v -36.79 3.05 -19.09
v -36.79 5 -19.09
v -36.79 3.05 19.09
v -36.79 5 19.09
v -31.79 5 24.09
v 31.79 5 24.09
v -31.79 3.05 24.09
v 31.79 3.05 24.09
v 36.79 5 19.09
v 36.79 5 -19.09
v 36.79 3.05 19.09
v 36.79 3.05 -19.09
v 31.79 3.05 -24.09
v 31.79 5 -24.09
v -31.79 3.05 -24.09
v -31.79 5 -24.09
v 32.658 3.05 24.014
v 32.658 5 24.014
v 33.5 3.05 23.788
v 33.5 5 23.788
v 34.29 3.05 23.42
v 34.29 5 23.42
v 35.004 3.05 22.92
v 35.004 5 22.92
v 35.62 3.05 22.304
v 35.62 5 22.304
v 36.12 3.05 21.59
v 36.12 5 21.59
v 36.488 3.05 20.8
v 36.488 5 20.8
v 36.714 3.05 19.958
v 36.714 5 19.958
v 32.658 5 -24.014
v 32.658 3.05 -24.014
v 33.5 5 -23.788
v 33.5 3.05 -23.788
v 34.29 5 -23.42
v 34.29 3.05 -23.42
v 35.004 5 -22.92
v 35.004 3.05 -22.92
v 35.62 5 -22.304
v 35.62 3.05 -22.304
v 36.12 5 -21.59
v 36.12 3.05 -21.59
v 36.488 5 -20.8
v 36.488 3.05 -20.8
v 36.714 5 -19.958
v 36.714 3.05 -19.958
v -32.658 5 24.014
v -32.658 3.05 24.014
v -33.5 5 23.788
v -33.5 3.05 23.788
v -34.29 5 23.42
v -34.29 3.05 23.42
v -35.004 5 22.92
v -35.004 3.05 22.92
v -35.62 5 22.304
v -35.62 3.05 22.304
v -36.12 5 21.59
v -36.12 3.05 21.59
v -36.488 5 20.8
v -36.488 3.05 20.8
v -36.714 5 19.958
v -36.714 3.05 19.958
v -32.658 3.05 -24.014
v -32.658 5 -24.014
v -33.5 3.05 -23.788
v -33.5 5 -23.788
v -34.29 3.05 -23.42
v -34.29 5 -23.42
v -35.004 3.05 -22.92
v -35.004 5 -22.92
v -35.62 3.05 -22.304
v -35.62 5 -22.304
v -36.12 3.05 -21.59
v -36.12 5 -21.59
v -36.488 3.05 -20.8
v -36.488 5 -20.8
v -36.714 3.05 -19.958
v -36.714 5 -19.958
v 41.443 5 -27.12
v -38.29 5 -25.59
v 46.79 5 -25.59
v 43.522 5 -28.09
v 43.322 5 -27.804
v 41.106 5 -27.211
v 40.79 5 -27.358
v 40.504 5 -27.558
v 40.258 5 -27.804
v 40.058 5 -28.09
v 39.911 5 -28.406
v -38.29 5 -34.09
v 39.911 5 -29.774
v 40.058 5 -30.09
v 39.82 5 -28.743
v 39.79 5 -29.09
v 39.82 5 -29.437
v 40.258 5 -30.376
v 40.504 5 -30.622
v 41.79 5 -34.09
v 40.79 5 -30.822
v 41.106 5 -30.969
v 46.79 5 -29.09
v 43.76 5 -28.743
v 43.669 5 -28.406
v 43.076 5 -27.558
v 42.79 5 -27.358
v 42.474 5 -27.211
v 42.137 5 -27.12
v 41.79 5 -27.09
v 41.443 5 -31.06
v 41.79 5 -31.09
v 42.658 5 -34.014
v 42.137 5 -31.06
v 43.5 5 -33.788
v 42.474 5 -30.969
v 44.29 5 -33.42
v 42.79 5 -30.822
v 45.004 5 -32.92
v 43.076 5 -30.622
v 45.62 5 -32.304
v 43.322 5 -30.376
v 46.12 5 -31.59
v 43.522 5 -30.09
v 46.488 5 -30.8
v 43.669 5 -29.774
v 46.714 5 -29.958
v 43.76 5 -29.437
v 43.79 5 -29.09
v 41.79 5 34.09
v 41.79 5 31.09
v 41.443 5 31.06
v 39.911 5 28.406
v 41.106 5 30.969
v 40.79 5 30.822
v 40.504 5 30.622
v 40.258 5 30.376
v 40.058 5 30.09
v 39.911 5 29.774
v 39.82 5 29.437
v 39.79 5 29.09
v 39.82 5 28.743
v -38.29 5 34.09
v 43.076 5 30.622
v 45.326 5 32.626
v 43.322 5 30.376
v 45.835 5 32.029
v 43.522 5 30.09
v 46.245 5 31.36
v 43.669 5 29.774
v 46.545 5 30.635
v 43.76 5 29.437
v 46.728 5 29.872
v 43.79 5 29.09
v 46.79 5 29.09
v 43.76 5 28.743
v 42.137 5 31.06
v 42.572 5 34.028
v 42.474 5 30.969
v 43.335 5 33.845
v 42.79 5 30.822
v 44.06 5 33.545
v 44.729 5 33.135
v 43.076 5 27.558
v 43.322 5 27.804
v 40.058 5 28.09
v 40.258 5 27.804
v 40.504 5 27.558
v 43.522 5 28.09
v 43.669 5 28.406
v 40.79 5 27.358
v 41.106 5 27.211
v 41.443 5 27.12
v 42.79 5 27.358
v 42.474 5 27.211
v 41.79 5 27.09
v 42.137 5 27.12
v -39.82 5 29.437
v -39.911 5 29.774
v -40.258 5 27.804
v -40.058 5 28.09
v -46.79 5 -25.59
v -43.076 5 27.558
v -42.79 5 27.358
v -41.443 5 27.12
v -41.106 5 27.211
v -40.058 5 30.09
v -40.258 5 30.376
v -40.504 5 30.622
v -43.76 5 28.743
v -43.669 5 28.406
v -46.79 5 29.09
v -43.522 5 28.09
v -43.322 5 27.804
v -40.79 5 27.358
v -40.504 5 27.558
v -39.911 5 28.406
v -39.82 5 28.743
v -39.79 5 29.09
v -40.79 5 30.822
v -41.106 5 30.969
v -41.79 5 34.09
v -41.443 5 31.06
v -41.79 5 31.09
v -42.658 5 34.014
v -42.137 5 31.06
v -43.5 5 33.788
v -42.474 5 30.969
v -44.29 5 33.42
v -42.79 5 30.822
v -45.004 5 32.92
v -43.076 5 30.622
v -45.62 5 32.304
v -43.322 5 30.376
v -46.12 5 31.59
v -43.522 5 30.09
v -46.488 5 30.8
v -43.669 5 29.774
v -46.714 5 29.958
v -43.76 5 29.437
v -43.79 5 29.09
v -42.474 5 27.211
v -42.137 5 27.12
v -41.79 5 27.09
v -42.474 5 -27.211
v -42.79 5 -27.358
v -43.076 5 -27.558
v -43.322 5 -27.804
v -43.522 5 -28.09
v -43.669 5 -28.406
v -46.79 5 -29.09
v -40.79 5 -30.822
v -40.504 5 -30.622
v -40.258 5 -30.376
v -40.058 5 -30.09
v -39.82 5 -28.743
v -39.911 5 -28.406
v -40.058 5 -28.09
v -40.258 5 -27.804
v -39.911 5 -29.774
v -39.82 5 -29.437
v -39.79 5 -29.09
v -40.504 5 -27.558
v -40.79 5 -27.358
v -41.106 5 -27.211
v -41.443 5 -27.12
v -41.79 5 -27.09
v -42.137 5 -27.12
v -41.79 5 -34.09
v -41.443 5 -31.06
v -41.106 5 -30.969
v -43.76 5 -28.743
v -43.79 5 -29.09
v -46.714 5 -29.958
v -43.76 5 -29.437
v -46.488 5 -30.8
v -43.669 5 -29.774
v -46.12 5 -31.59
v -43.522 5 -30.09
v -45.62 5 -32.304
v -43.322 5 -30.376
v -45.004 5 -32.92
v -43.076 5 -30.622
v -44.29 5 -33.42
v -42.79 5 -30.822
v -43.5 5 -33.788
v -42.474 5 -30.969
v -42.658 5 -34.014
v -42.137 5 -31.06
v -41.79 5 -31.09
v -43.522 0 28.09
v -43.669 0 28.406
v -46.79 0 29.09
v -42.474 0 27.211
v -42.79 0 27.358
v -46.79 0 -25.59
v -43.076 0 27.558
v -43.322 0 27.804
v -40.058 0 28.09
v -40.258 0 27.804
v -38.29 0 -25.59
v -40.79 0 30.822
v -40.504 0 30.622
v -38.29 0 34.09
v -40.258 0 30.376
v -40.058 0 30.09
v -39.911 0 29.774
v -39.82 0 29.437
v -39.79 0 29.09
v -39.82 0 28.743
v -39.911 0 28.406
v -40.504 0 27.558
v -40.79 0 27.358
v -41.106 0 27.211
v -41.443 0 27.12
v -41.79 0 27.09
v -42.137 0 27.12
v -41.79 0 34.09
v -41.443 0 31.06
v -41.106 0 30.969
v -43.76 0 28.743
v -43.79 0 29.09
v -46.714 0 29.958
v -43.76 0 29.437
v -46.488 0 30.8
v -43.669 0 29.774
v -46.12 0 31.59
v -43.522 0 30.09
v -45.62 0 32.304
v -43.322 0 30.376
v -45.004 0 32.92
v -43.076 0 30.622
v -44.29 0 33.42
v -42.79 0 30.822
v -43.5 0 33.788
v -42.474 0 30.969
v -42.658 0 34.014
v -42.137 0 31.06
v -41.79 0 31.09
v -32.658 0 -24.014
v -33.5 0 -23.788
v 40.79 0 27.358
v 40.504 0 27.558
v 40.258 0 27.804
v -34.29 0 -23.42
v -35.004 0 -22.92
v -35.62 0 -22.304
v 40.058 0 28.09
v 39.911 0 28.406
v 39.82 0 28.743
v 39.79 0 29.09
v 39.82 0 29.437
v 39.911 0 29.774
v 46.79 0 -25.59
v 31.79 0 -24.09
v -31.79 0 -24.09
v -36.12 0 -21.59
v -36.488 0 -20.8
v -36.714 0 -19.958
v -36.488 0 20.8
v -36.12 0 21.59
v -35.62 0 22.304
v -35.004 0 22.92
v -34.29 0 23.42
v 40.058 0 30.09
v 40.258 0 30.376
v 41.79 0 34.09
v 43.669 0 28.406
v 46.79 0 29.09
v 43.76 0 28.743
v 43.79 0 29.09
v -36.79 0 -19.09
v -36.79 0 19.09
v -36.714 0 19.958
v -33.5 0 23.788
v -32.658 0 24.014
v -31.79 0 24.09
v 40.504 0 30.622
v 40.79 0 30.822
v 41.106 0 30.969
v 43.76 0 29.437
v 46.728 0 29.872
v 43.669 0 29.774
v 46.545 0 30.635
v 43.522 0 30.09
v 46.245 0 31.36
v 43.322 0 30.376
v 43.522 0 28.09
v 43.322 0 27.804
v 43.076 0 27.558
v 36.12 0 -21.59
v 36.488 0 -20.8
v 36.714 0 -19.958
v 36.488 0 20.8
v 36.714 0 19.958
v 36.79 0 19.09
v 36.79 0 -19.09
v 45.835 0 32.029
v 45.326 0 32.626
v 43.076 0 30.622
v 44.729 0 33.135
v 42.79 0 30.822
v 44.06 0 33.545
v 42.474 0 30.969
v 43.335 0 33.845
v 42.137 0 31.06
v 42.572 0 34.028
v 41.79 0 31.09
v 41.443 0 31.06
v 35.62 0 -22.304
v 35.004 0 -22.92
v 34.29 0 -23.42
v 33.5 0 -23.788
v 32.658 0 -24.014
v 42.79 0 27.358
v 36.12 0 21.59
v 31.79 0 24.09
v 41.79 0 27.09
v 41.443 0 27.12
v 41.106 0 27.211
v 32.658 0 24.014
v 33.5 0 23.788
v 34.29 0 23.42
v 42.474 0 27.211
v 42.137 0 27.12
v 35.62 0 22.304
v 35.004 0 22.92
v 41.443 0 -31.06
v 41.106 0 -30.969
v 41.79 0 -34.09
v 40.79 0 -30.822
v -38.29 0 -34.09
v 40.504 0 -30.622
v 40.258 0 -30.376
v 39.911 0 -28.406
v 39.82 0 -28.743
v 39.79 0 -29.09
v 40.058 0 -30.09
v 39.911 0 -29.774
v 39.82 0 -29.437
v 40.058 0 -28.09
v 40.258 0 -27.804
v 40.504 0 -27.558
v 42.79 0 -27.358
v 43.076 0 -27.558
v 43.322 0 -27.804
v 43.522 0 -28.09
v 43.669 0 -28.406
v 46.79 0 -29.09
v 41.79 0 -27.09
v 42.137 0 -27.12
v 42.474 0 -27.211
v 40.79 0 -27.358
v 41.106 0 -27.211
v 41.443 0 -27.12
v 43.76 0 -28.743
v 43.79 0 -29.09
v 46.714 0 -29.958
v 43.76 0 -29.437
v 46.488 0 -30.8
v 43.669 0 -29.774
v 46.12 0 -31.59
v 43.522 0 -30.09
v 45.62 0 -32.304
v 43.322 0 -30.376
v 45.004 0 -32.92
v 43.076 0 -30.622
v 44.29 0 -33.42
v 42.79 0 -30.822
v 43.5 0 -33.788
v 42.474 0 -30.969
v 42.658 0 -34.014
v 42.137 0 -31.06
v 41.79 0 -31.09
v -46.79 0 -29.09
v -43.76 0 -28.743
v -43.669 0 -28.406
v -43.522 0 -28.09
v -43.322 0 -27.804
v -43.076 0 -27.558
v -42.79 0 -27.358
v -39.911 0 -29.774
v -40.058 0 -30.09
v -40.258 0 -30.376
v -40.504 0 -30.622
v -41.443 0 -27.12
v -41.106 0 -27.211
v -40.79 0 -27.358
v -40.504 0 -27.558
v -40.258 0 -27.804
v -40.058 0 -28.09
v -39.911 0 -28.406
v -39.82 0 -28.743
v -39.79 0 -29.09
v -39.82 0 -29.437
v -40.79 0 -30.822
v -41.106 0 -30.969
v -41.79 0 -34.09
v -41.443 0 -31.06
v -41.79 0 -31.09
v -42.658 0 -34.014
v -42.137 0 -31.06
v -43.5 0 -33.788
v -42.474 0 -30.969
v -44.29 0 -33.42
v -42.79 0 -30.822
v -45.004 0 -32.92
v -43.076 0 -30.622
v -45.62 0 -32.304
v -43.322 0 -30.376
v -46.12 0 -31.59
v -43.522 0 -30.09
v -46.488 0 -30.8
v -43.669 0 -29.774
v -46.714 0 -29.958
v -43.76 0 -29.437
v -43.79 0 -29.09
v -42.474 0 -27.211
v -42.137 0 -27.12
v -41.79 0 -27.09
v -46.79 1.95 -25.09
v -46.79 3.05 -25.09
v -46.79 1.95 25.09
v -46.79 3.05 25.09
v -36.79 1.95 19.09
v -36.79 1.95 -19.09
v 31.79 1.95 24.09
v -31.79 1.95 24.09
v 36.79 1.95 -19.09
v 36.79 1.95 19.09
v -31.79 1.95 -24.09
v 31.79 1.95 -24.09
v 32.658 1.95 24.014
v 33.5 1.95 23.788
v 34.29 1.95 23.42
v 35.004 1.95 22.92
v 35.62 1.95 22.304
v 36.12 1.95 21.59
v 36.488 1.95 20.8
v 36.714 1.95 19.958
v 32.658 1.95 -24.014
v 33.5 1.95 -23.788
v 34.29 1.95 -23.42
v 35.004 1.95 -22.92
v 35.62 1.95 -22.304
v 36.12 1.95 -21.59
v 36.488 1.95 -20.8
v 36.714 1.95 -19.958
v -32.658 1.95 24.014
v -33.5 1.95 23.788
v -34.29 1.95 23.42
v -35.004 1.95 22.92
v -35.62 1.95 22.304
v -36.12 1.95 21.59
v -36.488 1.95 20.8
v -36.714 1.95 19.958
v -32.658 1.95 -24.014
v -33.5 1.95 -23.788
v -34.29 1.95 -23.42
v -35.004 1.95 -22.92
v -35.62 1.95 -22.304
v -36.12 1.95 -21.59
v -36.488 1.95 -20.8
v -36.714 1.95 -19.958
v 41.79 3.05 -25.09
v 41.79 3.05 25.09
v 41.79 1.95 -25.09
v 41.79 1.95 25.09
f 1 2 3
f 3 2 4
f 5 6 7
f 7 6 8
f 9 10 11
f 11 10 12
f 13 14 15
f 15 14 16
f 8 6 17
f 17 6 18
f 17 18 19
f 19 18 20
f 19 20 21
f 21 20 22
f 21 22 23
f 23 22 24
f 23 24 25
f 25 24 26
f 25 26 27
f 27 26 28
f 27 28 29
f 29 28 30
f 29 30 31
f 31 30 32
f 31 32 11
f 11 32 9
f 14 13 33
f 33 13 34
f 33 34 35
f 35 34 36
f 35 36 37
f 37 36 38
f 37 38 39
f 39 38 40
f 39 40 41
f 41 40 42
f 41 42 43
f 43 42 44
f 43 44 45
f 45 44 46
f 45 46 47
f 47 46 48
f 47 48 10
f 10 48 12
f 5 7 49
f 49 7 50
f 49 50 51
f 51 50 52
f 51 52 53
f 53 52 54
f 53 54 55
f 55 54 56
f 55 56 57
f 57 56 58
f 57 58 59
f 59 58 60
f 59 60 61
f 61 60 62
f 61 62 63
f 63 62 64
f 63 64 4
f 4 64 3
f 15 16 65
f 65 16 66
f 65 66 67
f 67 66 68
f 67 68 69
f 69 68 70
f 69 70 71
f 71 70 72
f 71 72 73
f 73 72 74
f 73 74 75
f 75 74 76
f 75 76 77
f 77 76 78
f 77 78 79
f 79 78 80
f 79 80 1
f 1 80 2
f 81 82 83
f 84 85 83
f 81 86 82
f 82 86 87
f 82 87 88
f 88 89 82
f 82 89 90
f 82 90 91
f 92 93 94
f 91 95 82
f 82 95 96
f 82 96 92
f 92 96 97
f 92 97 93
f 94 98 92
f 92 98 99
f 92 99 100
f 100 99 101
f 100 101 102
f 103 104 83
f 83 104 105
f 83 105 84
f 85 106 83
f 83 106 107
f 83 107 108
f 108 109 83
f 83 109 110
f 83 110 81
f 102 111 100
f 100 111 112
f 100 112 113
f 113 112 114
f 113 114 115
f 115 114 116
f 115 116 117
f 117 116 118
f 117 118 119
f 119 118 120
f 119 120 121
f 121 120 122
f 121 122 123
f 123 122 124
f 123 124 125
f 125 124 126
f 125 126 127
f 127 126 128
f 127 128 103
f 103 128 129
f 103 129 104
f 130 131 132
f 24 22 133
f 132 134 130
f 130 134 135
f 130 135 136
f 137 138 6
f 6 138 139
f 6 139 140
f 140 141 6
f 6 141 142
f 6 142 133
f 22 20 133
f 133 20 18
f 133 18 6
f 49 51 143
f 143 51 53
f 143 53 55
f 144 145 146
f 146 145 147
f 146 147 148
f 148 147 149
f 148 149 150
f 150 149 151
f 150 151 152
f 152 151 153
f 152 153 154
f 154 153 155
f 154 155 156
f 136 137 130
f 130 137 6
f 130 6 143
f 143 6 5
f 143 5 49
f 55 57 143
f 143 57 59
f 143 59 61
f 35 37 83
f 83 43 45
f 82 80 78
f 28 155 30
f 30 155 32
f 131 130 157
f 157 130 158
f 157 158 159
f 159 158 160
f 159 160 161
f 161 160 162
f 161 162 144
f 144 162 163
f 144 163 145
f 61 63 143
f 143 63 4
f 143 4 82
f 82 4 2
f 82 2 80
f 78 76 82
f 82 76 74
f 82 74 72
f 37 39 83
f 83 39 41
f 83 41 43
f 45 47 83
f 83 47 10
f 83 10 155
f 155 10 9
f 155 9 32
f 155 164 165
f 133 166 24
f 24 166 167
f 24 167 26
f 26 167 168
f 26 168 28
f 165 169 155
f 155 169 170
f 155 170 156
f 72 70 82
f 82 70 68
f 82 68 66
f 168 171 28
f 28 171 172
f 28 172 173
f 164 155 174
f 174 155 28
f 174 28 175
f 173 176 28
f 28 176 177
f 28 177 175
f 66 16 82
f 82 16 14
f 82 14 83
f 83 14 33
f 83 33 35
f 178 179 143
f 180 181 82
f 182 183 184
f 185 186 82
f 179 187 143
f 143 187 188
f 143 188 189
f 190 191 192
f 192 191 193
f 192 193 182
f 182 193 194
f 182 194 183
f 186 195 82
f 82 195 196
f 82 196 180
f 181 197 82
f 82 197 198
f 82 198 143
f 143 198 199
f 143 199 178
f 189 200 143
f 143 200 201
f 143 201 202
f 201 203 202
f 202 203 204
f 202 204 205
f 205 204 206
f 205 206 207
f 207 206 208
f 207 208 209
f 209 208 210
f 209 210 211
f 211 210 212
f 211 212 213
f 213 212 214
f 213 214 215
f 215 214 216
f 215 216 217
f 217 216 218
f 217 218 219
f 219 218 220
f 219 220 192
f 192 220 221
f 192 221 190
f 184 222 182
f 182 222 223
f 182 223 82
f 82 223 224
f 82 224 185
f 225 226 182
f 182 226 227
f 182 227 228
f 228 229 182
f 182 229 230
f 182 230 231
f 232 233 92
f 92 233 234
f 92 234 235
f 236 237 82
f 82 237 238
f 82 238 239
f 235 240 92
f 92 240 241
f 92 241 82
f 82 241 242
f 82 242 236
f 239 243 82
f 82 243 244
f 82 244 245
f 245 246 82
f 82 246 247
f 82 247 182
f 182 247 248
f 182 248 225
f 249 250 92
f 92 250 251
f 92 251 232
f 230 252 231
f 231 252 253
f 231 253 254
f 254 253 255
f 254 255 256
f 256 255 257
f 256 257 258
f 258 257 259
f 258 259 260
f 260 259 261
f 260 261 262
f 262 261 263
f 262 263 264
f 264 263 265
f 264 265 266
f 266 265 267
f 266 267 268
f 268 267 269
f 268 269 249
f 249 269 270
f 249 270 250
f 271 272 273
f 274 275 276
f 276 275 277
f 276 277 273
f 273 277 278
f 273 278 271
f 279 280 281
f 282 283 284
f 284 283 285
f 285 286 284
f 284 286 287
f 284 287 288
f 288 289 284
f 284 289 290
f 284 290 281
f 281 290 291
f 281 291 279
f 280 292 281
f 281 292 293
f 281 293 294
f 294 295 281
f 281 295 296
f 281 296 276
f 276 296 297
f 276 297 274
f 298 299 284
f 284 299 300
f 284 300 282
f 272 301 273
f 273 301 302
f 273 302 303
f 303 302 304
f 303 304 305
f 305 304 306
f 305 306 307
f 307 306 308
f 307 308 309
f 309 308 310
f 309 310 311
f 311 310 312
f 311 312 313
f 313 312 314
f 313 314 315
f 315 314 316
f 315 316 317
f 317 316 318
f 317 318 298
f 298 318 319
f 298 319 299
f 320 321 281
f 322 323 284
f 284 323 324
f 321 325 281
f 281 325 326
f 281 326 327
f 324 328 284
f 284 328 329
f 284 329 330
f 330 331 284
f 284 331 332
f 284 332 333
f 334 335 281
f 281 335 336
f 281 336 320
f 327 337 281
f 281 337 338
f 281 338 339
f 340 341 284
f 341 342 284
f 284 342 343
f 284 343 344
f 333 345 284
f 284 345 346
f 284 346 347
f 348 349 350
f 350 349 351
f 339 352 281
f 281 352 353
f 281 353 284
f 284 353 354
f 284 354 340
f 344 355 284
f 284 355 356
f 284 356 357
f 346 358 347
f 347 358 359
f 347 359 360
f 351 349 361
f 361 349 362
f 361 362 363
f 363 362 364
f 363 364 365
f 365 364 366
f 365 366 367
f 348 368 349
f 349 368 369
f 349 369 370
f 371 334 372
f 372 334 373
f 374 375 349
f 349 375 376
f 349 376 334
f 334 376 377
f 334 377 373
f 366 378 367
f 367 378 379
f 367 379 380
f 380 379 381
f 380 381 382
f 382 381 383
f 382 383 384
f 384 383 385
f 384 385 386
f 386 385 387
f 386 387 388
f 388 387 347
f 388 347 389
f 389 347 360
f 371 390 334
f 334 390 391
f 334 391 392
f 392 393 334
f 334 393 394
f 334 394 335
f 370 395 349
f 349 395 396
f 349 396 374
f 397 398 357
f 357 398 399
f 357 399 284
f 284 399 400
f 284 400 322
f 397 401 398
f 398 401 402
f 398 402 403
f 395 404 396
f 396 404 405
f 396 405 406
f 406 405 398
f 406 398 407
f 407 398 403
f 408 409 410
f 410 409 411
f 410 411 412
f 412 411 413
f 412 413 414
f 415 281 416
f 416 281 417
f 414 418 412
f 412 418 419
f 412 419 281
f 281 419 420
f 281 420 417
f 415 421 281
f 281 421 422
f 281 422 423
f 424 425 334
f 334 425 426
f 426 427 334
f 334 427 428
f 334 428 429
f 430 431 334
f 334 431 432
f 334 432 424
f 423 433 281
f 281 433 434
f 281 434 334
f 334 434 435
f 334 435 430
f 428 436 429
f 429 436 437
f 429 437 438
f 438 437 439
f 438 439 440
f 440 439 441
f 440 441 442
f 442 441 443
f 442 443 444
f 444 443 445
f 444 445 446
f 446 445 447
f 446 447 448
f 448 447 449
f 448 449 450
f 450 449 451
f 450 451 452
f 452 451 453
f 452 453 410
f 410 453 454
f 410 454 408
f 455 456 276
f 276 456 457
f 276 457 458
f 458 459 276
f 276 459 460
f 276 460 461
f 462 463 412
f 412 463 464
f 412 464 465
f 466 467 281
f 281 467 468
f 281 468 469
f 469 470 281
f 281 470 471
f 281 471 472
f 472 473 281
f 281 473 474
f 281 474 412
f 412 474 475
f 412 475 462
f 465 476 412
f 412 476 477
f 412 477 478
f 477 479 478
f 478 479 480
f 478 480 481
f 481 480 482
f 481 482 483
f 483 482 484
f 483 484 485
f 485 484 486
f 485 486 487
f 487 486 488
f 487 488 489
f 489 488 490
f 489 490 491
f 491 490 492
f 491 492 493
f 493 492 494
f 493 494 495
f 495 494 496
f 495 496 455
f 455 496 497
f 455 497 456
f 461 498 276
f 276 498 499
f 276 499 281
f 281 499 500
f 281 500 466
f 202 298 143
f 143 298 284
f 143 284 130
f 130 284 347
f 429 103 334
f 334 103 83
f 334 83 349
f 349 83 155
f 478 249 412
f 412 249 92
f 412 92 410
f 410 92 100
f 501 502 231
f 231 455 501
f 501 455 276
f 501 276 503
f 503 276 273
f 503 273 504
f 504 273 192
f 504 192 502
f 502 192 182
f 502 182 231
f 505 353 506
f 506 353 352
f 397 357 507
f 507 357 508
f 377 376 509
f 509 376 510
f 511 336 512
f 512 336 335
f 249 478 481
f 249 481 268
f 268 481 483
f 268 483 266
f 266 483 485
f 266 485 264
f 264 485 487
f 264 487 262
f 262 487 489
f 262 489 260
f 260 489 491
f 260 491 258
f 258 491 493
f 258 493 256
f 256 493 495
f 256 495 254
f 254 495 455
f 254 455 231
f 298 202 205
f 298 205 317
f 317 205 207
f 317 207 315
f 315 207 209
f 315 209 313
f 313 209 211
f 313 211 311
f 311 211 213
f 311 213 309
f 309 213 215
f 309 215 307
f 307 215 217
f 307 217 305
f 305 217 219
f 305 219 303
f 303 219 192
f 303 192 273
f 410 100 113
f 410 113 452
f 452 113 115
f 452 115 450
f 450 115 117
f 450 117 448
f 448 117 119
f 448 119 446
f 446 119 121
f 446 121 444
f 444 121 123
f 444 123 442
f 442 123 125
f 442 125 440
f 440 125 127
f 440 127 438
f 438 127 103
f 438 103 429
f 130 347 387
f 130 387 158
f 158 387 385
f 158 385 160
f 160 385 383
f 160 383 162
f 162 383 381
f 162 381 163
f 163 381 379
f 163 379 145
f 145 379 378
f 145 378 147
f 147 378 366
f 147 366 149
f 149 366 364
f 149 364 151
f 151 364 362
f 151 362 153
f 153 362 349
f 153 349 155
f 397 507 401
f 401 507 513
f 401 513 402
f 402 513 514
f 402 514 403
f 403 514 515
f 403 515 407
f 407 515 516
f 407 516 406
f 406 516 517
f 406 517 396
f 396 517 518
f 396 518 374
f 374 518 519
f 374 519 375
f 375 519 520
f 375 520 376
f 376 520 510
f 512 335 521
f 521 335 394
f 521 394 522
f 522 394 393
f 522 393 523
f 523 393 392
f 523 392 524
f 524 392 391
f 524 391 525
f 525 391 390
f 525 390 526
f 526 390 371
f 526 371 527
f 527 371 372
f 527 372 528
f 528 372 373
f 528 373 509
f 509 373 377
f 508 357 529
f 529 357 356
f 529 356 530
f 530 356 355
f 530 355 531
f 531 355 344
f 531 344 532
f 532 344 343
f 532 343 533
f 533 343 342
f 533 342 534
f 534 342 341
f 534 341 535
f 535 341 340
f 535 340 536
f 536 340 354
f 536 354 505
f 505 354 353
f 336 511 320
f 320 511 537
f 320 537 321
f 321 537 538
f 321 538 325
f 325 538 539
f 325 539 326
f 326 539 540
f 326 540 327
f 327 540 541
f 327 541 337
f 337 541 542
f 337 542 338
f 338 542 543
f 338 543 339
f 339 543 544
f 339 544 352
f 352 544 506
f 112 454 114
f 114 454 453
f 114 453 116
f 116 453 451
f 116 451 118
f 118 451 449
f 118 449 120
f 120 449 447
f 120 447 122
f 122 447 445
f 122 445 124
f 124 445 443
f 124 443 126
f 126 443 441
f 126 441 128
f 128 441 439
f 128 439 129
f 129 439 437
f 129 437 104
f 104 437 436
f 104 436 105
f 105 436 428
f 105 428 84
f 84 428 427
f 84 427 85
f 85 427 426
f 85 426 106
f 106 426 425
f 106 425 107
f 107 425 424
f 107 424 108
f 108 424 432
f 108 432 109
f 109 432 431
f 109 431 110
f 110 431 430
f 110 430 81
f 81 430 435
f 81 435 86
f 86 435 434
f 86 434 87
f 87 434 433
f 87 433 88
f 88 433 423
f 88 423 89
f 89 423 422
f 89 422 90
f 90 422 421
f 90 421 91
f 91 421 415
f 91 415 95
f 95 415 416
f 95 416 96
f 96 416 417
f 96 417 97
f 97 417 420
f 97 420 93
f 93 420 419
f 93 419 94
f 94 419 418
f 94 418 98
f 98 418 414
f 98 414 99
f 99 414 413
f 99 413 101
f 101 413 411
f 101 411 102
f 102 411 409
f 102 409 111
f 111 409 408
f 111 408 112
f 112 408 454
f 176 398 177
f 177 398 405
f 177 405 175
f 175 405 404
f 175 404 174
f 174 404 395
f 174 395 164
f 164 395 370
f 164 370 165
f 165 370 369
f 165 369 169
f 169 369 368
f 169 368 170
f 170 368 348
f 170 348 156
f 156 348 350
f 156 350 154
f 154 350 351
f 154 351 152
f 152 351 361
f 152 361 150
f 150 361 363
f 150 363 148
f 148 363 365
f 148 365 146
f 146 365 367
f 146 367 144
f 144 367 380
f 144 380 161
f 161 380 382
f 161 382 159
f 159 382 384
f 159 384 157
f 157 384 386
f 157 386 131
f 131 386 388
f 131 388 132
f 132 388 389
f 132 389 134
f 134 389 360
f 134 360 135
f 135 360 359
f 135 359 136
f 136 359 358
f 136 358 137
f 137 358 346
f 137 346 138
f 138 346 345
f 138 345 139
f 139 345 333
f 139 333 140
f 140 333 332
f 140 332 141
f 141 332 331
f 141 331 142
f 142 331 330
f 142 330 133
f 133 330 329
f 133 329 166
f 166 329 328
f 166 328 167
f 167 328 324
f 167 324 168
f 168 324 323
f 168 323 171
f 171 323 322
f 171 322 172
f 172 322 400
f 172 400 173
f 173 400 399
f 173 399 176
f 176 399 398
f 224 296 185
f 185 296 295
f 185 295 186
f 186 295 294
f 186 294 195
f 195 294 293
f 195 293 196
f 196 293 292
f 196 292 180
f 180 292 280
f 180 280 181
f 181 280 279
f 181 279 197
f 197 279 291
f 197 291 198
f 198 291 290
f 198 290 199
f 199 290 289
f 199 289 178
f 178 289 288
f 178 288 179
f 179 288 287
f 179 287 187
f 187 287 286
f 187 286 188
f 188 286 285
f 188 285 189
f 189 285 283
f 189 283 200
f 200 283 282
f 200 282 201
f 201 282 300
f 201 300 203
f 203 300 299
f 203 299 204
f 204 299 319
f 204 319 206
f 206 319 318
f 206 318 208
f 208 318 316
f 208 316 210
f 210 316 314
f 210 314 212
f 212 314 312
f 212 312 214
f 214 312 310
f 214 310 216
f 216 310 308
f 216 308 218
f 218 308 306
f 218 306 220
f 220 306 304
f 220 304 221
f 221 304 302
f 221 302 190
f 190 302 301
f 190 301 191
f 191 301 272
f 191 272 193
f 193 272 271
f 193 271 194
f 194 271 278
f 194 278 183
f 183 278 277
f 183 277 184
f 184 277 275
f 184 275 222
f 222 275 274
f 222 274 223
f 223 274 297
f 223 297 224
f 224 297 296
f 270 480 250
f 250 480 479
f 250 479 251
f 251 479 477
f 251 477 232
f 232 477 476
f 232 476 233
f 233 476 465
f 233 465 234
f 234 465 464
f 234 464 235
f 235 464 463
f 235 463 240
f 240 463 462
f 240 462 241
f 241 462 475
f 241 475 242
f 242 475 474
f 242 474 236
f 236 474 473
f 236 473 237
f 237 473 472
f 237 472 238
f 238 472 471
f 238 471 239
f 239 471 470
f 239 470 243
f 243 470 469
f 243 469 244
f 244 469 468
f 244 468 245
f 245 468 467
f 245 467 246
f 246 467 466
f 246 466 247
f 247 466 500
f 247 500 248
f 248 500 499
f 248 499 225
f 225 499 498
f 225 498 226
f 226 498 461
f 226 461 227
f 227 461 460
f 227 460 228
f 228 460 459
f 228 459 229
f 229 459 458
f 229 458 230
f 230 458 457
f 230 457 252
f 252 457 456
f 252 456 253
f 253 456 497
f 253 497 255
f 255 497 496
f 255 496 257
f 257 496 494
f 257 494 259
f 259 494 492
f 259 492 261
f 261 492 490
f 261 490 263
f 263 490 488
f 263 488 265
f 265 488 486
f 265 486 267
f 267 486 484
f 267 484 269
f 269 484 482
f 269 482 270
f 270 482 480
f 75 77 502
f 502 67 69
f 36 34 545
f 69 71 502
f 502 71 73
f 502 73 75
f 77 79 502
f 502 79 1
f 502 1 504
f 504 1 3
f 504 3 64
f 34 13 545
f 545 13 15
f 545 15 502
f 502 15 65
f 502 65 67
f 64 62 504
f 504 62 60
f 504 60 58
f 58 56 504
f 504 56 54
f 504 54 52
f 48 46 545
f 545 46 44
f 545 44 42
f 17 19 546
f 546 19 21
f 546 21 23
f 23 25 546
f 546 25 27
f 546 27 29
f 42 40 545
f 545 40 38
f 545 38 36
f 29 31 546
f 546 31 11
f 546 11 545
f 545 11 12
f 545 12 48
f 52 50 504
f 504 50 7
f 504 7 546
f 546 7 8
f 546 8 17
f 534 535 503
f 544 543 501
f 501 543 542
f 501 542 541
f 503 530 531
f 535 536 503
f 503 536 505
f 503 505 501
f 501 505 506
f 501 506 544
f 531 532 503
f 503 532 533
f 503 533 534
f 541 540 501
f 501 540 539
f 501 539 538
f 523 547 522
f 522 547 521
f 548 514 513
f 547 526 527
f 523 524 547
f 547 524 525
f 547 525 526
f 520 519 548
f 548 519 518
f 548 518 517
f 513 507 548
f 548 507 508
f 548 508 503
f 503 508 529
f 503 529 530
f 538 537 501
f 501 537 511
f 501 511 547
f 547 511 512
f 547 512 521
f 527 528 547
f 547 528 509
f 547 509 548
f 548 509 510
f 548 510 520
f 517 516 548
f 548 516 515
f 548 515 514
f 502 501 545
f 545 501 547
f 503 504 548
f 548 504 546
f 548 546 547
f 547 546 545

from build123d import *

# Parameters (mm, degrees)
SKETCH1_W           = 93.58
SKETCH1_H           = 68.18
BOSS_EXTRUDE1_DEPTH = 5
SKETCH1_12_W        = 73.58
SKETCH1_12_H        = 48.18
CUT_EXTRUDE2_DEPTH  = 59.107075301
FILLET1_R           = 5
FILLET2_R           = 5
SKETCH1_13_R        = 2
CUT_EXTRUDE3_DEPTH  = 59.107075301
SKETCH2_W           = 50.18
SKETCH2_H           = 1.1
CUT_EXTRUDE4_DEPTH  = 88.58


with BuildPart() as part:
    # Sketch1 → Boss-Extrude1 (new body)
    with BuildSketch(Plane(origin=(0, 0, 0), x_dir=(1, 0, 0), z_dir=(0, 1, 0))):
        Rectangle(SKETCH1_W, SKETCH1_H)
    extrude(amount=BOSS_EXTRUDE1_DEPTH)

    # Sketch1<12> → Cut-Extrude2 (cut, through all)
    with BuildSketch(Plane(origin=(0, 0, 0), x_dir=(1, 0, 0), z_dir=(0, 1, 0))):
        Rectangle(SKETCH1_12_W, SKETCH1_12_H)
    extrude(amount=CUT_EXTRUDE2_DEPTH, mode=Mode.SUBTRACT)

    # Fillet1
    fillet1_edges = [part.edges().sort_by_distance(p)[0] for p in [
        (-46.79, 2.5, 34.09),
        (-46.79, 2.5, -34.09),
        (46.79, 2.5, -34.09),
        (46.79, 2.5, 34.09),
    ]]
    fillet(fillet1_edges, radius=FILLET1_R)

    # Fillet2
    fillet2_edges = [part.edges().sort_by_distance(p)[0] for p in [
        (-36.79, 2.5, -24.09),
        (-36.79, 2.5, 24.09),
        (36.79, 2.5, 24.09),
        (36.79, 2.5, -24.09),
    ]]
    fillet(fillet2_edges, radius=FILLET2_R)

    # Sketch1<13> → Cut-Extrude3 (cut, through all)
    with BuildSketch(Plane(origin=(0, 0, 0), x_dir=(1, 0, 0), z_dir=(0, 1, 0))):
        with Locations(Location((-41.79, 29.09, 0), (0, 0, 270))):
            Circle(SKETCH1_13_R)
        with Locations(Location((41.79, 29.09, 0), (0, 0, 90))):
            Circle(SKETCH1_13_R)
        with Locations(Location((41.79, -29.09, 0), (0, 0, 270))):
            Circle(SKETCH1_13_R)
        with Locations(Location((-41.79, -29.09, 0), (0, 0, 90))):
            Circle(SKETCH1_13_R)
    extrude(amount=CUT_EXTRUDE3_DEPTH, mode=Mode.SUBTRACT)

    # Sketch2 → Cut-Extrude4 (cut)
    with BuildSketch(Plane.ZY.offset(46.79)):
        with Locations((0, 2.5)):
            Rectangle(SKETCH2_W, SKETCH2_H)
    extrude(amount=-CUT_EXTRUDE4_DEPTH, mode=Mode.SUBTRACT)


solid = part.part
